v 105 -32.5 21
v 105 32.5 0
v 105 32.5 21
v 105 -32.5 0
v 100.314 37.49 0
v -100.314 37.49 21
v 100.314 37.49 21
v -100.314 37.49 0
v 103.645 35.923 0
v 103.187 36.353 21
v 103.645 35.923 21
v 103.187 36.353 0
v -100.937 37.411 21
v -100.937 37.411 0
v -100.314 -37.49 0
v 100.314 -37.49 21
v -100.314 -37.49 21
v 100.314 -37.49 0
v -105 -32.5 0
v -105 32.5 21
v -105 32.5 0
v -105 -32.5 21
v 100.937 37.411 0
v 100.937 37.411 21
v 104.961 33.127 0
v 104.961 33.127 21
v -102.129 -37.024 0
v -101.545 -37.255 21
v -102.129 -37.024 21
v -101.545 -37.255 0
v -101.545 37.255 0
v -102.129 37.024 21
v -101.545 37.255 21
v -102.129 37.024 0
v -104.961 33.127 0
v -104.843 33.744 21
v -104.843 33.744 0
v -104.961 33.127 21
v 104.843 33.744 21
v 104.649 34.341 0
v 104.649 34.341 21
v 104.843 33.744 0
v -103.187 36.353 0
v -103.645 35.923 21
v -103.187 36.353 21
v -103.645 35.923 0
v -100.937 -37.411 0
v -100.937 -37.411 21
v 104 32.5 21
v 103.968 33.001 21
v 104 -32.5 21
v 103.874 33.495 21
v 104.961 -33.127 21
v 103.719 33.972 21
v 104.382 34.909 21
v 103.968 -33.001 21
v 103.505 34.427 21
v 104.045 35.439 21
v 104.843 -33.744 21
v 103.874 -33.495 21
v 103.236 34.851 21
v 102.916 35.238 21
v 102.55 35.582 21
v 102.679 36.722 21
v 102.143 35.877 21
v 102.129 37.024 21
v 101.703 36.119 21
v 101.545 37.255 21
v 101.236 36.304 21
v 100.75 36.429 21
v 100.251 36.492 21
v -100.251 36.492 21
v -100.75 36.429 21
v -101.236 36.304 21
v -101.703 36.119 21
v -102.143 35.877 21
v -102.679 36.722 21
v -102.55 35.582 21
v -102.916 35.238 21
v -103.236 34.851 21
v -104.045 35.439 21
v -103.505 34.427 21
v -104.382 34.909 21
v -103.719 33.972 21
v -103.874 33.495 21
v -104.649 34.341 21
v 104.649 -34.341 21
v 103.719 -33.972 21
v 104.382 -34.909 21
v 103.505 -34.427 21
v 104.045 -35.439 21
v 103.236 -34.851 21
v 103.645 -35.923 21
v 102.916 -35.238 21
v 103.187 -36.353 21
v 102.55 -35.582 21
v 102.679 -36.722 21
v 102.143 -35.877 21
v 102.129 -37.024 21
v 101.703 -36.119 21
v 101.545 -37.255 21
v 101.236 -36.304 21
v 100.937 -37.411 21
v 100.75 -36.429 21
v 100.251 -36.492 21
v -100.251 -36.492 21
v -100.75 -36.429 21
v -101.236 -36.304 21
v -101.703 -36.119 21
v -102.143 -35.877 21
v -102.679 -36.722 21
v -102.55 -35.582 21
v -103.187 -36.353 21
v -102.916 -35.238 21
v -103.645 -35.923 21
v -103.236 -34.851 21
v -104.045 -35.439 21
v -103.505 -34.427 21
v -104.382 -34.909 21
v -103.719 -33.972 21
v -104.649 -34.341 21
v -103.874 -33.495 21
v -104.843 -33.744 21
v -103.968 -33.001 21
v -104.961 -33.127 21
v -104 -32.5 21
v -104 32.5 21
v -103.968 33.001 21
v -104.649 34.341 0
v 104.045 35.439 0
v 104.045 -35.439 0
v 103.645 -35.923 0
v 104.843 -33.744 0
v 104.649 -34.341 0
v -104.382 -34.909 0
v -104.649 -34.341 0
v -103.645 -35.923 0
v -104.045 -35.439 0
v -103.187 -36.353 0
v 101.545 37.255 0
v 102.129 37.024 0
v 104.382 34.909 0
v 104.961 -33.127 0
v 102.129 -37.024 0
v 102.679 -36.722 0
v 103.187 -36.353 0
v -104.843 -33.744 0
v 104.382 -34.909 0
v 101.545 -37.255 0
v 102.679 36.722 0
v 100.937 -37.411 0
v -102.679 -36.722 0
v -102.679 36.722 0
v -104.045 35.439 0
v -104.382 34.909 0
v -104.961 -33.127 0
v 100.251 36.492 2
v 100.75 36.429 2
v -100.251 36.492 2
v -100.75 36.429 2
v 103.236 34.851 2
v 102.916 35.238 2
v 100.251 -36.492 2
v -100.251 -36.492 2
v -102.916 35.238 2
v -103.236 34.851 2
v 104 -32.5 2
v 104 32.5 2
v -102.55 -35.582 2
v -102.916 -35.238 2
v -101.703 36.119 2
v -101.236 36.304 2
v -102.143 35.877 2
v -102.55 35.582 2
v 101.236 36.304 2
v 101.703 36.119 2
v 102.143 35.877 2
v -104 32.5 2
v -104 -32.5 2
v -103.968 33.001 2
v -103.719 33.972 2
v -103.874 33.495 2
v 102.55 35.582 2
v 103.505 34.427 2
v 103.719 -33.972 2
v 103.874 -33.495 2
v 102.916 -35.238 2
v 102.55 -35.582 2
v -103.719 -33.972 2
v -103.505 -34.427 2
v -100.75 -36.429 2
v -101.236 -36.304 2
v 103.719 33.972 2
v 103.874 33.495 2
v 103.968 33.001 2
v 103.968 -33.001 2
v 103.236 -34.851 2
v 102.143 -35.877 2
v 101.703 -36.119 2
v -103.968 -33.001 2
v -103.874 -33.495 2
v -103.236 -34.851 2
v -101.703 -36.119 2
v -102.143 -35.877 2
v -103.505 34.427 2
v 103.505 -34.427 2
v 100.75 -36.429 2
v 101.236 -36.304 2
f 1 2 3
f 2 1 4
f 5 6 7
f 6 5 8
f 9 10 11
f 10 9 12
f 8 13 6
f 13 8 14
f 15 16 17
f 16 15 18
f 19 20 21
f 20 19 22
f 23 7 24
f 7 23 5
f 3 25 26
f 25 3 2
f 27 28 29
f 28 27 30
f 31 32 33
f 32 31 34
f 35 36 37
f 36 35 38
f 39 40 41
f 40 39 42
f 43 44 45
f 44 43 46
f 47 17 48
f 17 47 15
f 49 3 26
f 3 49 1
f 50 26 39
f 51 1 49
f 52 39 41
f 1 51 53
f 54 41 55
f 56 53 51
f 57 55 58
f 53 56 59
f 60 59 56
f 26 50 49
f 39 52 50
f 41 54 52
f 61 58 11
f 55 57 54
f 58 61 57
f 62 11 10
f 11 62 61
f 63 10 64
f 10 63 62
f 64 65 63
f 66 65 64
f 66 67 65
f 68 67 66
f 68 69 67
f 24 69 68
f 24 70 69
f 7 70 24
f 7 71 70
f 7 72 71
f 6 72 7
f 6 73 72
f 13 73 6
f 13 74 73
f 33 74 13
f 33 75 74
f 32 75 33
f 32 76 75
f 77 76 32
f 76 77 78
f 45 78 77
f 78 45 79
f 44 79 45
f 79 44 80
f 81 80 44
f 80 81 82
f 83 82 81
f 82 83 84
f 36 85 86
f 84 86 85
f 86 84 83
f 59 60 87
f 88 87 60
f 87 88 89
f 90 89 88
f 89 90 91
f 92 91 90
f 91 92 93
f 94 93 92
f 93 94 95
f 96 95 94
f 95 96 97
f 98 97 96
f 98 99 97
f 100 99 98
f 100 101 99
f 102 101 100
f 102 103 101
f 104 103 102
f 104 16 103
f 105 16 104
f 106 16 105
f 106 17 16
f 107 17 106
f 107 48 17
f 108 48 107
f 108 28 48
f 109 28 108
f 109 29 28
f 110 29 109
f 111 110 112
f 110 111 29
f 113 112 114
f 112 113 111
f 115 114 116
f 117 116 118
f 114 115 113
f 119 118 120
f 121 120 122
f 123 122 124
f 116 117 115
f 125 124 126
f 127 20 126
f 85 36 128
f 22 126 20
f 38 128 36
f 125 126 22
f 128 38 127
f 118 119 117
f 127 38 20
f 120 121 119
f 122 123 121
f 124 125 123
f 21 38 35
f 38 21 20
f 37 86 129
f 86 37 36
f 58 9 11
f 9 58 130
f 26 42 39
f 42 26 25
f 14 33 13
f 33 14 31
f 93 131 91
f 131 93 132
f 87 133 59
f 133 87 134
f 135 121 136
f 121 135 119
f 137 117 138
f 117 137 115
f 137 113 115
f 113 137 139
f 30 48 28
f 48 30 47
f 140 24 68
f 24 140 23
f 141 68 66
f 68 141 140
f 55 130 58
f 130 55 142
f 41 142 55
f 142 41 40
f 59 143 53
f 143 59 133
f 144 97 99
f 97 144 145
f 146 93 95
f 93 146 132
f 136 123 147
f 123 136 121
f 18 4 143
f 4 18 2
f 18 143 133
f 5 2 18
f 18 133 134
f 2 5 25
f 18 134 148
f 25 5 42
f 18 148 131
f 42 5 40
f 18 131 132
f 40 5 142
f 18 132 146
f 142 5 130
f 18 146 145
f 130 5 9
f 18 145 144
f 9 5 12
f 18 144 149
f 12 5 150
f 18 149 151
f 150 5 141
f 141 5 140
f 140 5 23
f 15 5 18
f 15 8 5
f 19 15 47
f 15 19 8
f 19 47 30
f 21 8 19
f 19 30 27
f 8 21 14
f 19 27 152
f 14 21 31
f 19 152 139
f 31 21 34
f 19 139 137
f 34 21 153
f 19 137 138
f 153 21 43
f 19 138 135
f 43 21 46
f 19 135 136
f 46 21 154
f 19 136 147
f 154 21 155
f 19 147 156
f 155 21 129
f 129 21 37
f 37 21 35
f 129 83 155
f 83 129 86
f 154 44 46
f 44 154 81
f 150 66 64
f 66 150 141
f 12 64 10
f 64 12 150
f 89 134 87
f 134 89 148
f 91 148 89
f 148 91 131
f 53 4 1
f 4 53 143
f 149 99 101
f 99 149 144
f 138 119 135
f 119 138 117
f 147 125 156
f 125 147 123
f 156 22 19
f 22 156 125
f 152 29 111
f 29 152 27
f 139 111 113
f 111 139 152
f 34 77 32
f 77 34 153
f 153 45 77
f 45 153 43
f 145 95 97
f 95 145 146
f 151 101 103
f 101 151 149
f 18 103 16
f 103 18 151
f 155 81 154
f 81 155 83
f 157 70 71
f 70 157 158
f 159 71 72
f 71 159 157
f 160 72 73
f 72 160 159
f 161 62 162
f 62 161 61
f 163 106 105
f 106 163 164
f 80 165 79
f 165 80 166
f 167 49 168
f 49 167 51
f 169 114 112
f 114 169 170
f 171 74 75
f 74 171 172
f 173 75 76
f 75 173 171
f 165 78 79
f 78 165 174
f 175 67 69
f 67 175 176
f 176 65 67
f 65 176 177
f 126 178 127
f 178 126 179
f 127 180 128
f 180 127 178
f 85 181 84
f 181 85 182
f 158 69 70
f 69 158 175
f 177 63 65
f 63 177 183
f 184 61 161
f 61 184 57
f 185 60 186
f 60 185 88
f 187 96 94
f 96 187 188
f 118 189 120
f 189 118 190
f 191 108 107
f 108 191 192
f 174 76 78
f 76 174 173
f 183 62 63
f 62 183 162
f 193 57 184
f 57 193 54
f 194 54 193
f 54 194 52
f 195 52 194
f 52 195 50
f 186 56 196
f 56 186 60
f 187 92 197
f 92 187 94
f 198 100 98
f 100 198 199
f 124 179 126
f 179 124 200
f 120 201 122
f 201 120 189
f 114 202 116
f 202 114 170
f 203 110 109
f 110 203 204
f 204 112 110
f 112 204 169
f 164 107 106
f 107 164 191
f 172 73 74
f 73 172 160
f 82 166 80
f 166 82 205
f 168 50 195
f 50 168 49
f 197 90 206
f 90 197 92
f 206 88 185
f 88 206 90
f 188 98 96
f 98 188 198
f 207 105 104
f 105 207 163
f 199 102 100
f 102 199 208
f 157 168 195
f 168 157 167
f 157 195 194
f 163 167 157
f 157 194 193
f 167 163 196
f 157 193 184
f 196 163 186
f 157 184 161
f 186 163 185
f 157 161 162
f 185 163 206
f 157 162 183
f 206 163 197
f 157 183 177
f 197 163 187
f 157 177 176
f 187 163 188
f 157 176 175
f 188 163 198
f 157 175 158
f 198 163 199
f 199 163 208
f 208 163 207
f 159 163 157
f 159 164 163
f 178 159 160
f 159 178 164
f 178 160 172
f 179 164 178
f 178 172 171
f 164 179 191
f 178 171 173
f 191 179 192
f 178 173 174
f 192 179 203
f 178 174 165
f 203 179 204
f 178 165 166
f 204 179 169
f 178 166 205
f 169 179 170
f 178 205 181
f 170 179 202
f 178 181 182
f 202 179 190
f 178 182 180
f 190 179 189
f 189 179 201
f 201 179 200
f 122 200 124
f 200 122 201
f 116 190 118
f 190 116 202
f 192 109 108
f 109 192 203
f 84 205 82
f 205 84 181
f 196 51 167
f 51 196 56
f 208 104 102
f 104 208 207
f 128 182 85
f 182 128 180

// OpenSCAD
$fn = 50;


difference() {
	union() {
		hull() {
			translate(v = [-100.0000000000, 32.5000000000, 0]) {
				cylinder(h = 21, r = 5);
			}
			translate(v = [100.0000000000, 32.5000000000, 0]) {
				cylinder(h = 21, r = 5);
			}
			translate(v = [-100.0000000000, -32.5000000000, 0]) {
				cylinder(h = 21, r = 5);
			}
			translate(v = [100.0000000000, -32.5000000000, 0]) {
				cylinder(h = 21, r = 5);
			}
		}
	}
	union() {
		translate(v = [0, 0, 2]) {
			hull() {
				translate(v = [-100.0000000000, 32.5000000000, 0]) {
					cylinder(h = 19, r = 4);
				}
				translate(v = [100.0000000000, 32.5000000000, 0]) {
					cylinder(h = 19, r = 4);
				}
				translate(v = [-100.0000000000, -32.5000000000, 0]) {
					cylinder(h = 19, r = 4);
				}
				translate(v = [100.0000000000, -32.5000000000, 0]) {
					cylinder(h = 19, r = 4);
				}
			}
		}
	}
}
